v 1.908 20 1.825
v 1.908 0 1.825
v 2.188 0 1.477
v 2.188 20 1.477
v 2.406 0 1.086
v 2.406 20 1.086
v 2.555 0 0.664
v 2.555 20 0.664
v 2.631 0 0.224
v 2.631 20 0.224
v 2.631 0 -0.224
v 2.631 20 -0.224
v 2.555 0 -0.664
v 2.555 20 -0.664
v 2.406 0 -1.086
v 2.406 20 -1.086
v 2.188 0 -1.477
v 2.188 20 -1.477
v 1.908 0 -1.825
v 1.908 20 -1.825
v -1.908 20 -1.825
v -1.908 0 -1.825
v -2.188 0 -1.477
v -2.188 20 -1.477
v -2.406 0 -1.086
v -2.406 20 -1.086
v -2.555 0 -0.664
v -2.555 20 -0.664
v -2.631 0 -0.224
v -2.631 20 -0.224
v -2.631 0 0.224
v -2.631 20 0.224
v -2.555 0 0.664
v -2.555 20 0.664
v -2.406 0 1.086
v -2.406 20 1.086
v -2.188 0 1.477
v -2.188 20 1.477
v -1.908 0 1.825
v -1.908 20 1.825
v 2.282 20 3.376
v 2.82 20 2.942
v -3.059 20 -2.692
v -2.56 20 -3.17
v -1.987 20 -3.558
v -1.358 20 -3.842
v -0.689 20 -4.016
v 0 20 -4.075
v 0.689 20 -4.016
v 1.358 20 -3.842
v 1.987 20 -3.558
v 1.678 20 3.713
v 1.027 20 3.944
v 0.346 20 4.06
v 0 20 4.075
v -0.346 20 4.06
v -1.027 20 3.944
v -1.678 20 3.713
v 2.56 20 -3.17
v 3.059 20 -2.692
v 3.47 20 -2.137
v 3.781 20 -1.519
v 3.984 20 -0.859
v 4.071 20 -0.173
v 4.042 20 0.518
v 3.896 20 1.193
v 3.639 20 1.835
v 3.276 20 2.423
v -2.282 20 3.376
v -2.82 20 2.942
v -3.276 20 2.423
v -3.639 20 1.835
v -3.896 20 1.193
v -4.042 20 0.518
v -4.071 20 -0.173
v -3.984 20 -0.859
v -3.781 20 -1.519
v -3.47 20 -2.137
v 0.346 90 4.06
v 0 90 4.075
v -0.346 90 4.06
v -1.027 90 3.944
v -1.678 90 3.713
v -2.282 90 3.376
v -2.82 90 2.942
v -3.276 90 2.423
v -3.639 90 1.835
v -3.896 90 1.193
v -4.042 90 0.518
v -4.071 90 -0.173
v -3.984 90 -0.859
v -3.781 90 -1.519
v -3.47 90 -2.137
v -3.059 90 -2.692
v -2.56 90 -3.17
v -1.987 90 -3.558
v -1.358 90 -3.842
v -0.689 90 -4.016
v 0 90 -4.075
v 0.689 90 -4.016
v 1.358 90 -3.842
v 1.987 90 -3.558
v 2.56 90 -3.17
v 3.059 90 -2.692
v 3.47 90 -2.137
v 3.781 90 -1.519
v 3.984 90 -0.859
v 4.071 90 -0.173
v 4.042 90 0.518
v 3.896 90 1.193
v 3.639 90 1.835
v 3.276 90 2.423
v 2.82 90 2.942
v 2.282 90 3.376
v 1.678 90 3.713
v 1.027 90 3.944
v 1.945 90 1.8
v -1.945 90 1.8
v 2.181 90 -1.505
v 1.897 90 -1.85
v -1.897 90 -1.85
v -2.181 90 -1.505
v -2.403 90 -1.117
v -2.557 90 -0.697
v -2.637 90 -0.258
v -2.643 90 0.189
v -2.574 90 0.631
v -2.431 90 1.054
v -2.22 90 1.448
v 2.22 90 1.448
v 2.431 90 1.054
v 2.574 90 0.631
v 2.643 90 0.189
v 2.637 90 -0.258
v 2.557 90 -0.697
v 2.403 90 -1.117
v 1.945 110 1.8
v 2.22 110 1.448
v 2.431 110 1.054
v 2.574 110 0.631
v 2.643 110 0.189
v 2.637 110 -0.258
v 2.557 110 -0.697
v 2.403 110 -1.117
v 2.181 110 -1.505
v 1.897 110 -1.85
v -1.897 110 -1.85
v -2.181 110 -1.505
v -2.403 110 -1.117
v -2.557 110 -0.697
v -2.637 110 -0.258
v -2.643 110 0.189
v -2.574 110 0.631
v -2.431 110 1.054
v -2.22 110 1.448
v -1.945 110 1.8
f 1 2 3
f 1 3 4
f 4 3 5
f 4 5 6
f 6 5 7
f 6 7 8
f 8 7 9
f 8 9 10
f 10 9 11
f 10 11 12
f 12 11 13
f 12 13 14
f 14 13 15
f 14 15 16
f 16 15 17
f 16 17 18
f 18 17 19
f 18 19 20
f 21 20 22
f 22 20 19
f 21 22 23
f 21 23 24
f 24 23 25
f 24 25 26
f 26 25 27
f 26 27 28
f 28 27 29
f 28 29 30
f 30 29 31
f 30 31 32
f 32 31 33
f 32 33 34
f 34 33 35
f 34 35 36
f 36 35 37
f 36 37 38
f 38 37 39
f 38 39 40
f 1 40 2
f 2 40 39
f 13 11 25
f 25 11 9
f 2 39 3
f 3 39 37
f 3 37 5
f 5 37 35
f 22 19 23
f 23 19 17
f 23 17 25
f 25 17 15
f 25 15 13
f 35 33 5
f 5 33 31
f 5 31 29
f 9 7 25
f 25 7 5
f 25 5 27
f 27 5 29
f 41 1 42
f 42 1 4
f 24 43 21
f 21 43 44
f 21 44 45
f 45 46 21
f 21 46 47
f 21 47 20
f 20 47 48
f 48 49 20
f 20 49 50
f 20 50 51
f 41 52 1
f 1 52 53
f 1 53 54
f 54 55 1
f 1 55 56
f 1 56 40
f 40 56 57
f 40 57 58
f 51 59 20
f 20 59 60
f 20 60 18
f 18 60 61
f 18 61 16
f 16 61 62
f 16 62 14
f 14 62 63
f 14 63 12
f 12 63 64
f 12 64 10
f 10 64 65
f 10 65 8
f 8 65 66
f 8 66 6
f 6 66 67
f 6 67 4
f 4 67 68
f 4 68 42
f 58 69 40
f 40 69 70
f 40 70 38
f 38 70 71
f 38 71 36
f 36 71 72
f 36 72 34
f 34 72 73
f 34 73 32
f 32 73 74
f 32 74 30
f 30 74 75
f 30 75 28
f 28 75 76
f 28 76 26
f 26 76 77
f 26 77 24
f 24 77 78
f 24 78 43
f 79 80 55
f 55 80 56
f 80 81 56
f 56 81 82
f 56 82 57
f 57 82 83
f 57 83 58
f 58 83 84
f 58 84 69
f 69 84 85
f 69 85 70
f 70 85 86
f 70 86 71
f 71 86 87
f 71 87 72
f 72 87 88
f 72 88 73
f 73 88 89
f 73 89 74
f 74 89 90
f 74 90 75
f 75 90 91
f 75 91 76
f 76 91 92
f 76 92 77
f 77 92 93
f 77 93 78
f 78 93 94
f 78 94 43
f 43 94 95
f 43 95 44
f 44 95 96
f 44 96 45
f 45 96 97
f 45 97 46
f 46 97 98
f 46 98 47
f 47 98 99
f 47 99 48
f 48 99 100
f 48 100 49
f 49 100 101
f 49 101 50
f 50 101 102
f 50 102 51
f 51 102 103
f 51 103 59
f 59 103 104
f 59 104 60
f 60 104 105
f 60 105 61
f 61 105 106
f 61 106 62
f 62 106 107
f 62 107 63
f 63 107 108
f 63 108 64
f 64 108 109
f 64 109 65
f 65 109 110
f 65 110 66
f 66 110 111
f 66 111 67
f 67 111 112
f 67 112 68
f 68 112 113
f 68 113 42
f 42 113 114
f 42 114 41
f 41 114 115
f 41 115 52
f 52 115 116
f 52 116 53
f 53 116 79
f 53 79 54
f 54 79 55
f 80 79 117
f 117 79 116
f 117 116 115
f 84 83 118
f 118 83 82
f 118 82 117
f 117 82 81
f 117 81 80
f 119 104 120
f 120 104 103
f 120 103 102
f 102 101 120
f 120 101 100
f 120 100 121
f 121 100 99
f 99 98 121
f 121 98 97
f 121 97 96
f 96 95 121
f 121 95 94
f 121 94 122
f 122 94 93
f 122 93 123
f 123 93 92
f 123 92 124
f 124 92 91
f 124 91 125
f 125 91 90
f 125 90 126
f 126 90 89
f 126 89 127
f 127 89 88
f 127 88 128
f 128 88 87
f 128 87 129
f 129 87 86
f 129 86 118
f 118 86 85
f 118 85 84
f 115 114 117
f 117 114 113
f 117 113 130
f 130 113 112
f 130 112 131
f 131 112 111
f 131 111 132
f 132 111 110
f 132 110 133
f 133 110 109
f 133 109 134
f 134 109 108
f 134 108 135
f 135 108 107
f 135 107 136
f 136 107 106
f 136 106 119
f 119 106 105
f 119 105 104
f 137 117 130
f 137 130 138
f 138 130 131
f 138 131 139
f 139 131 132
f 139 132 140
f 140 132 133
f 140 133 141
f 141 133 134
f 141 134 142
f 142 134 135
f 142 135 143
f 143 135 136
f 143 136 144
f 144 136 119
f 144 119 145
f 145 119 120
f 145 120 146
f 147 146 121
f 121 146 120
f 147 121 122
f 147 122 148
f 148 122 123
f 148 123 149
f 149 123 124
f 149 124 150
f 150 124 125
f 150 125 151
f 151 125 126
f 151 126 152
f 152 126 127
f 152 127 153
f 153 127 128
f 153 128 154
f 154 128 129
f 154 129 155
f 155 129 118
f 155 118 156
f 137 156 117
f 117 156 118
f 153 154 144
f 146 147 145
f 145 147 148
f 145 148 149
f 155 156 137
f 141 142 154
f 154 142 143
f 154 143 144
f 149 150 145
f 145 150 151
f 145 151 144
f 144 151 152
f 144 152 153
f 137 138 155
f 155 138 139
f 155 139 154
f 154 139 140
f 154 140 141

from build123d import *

# Parameters (mm, degrees)
BOSS_EXTRUDE1_DEPTH = 20
SKETCH2_R           = 4.075
BOSS_EXTRUDE2_DEPTH = 70
BOSS_EXTRUDE3_DEPTH = 20


with BuildPart() as part:
    # Sketch1 → Boss-Extrude1 (new body)
    with BuildSketch(Plane(origin=(0, 0, 0), x_dir=(1, 0, 0), z_dir=(0, 1, 0))):
        with BuildLine():
            Line((1.907609761, 1.825), (-1.907609761, 1.825))
            ThreePointArc((-1.907609761, 1.825), (-2.64, 0), (-1.907609761, -1.825))
            Line((-1.907609761, -1.825), (1.907609761, -1.825))
            ThreePointArc((1.907609761, -1.825), (2.64, 0), (1.907609761, 1.825))
        make_face()
    extrude(amount=BOSS_EXTRUDE1_DEPTH)

    # Sketch2 → Boss-Extrude2 (add)
    with BuildSketch(Plane(origin=(0, 20, 0), x_dir=(1, 0, 0), z_dir=(0, 1, 0))):
        with Locations(Location((0, 0, 0), (0, 0, 270))):
            Circle(SKETCH2_R)
    extrude(amount=BOSS_EXTRUDE2_DEPTH)

    # Sketch3 → Boss-Extrude3 (add)
    with BuildSketch(Plane(origin=(0, 90, 0), x_dir=(1, 0, 0), z_dir=(0, 1, 0))):
        with BuildLine():
            Line((1.897366596, 1.85), (-1.897366596, 1.85))
            ThreePointArc((-1.897366596, 1.85), (-2.649775646, 0.034482248), (-1.944865034, -1.8))
            Line((-1.944865034, -1.8), (1.944865034, -1.8))
            ThreePointArc((1.944865034, -1.8), (2.649775646, 0.034482248), (1.897366596, 1.85))
        make_face()
    extrude(amount=BOSS_EXTRUDE3_DEPTH)


solid = part.part
